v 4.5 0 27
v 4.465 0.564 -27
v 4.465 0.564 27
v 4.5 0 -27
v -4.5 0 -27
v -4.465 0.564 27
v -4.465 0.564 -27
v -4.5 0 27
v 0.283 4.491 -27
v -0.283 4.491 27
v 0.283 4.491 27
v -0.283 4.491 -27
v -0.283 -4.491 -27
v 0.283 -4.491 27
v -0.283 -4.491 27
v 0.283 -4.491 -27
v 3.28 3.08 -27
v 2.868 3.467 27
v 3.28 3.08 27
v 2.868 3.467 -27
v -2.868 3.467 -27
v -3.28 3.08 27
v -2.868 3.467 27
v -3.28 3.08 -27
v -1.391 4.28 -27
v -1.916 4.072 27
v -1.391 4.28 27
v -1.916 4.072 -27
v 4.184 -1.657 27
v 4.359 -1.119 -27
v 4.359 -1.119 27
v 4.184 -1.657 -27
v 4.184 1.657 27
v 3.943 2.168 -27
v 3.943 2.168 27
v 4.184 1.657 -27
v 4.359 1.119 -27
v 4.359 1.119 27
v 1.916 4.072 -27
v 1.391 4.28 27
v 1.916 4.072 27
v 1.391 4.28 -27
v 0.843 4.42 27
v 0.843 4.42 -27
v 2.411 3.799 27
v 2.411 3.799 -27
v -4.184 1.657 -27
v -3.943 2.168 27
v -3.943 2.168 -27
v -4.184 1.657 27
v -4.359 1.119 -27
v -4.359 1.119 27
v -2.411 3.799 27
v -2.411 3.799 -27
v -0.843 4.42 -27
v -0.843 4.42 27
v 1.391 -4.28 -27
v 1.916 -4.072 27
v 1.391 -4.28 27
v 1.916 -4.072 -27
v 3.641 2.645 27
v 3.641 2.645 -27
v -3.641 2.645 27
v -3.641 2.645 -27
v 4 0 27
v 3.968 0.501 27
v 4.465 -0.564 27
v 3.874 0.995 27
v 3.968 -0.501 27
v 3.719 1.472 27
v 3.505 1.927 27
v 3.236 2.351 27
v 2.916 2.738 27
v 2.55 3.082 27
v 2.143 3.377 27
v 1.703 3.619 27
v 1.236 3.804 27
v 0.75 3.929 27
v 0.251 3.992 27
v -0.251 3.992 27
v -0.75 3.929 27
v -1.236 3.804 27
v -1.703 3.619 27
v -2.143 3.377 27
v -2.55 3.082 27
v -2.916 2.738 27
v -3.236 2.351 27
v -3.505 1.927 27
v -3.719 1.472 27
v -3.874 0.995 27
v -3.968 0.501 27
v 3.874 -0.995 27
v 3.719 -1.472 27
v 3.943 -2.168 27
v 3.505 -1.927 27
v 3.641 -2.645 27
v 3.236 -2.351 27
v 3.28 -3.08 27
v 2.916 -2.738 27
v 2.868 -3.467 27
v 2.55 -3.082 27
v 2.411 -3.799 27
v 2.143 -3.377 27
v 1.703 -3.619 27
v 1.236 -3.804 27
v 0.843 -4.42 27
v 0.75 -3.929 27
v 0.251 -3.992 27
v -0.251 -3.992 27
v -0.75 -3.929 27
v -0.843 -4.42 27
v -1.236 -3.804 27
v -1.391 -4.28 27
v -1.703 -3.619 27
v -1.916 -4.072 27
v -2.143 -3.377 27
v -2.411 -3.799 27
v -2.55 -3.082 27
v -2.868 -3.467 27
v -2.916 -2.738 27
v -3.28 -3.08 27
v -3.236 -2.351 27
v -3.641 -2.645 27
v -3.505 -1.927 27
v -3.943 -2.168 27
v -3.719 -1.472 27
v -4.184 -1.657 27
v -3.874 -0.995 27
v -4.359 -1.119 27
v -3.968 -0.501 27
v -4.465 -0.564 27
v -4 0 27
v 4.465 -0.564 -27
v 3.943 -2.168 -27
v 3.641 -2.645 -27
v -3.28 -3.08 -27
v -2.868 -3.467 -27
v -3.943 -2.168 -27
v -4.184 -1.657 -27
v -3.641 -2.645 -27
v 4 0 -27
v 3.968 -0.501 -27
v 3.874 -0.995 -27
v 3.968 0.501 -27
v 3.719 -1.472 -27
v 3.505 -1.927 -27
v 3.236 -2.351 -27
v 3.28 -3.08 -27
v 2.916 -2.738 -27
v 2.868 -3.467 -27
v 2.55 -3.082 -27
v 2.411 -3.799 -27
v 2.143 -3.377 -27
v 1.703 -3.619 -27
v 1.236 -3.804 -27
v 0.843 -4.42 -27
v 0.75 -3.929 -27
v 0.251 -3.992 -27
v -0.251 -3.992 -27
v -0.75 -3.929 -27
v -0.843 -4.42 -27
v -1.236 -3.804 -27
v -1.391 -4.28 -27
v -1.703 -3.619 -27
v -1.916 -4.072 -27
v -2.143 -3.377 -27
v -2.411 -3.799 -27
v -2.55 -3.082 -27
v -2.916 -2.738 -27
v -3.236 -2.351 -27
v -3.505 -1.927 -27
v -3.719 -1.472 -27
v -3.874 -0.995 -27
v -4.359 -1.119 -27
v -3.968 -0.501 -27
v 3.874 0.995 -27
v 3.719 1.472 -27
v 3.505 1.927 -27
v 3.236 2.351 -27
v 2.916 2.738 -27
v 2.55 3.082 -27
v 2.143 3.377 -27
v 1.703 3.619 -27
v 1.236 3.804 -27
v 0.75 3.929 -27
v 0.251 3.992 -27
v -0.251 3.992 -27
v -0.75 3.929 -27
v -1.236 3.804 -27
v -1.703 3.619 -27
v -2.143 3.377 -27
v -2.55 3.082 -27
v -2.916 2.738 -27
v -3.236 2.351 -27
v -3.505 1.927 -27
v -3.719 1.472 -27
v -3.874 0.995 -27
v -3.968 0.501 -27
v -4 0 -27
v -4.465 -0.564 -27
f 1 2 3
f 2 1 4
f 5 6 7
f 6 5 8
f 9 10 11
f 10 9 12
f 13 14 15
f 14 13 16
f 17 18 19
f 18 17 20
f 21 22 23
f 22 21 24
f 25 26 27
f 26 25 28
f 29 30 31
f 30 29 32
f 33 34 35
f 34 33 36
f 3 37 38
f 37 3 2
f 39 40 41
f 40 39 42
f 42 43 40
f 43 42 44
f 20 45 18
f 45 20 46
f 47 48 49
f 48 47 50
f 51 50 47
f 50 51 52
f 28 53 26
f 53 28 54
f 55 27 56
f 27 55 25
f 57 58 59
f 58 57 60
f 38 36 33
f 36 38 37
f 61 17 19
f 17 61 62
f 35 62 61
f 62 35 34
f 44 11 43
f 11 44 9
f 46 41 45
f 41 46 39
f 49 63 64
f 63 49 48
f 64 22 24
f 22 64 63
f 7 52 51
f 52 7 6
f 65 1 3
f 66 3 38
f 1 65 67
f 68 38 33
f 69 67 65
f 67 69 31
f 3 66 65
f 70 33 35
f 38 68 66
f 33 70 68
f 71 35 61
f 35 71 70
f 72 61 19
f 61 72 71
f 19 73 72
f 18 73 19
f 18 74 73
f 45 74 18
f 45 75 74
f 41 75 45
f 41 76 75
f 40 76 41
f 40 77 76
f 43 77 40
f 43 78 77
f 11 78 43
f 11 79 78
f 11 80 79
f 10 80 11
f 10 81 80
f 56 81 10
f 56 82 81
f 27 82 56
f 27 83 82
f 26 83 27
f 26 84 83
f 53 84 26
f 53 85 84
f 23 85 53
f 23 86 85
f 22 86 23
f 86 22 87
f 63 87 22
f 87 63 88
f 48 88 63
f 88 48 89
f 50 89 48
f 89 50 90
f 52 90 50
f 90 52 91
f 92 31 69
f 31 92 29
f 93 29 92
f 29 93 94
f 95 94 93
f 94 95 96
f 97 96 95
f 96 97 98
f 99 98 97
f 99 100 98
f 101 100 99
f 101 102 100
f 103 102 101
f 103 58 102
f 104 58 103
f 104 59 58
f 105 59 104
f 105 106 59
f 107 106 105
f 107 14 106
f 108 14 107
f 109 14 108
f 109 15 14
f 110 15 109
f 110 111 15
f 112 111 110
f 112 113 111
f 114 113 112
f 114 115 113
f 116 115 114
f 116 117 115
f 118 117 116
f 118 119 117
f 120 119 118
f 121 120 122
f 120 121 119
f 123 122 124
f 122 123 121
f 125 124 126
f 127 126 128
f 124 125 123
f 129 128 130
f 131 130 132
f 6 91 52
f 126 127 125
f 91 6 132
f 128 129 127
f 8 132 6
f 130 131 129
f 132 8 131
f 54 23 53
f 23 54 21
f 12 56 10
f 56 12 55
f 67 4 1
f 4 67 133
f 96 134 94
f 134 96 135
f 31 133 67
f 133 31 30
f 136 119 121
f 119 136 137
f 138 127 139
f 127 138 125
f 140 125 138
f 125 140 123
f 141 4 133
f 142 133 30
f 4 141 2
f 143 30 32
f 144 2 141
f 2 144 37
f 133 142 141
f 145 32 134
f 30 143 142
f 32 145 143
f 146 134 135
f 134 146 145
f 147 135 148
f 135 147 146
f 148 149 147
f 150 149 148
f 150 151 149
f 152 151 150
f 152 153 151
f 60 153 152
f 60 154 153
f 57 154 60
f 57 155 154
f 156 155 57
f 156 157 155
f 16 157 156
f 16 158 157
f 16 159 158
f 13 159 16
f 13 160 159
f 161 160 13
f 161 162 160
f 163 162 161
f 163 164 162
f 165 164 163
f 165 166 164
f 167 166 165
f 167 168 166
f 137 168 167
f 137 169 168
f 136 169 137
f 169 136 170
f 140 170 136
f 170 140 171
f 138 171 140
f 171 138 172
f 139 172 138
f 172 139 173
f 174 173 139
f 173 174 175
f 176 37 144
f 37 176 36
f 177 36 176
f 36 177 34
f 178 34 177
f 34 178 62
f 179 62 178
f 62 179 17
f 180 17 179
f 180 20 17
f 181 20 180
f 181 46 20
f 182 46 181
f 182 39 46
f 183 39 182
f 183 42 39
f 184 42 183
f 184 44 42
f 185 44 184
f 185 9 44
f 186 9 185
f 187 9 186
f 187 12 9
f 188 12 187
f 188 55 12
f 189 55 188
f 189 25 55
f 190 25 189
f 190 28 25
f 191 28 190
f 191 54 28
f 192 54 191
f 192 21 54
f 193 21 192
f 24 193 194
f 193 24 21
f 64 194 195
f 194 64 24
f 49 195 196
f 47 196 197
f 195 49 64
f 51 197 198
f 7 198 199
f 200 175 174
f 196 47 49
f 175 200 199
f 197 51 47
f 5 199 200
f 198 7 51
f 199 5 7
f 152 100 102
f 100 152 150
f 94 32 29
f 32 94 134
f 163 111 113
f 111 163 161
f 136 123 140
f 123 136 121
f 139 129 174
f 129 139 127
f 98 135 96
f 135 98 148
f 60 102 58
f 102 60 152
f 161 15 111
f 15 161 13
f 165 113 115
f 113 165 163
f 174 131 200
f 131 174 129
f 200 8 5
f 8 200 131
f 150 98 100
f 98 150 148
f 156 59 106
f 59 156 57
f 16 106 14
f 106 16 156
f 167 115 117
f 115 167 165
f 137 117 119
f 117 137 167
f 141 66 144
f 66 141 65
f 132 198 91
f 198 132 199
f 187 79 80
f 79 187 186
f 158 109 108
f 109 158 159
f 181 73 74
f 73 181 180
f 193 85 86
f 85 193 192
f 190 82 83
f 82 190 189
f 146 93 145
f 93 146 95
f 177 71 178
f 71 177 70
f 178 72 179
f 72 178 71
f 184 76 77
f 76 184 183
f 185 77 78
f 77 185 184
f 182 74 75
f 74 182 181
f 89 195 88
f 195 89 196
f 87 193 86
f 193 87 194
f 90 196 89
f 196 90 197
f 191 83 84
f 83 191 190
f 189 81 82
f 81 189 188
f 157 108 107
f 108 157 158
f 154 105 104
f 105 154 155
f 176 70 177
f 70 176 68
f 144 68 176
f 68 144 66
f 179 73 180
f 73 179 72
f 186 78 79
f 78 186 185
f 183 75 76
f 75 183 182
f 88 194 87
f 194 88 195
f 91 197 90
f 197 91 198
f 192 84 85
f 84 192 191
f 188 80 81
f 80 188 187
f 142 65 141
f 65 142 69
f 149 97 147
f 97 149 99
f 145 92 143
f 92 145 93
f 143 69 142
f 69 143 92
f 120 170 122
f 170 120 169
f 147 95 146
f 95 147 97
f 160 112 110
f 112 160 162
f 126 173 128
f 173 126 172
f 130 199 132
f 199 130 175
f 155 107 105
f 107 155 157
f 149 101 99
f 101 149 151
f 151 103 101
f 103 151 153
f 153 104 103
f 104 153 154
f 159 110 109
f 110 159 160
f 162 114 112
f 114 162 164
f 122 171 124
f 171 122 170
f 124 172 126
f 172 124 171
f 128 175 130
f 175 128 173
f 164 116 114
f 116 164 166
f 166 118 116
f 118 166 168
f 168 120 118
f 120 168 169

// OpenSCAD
$fn = 50;


difference() {
	union() {
		translate(v = [0, 0, -27.0000000000]) {
			cylinder(h = 54, r = 4.5000000000);
		}
	}
	union() {
		translate(v = [0, 0, -100.0000000000]) {
			cylinder(h = 200, r = 4);
		}
	}
}
